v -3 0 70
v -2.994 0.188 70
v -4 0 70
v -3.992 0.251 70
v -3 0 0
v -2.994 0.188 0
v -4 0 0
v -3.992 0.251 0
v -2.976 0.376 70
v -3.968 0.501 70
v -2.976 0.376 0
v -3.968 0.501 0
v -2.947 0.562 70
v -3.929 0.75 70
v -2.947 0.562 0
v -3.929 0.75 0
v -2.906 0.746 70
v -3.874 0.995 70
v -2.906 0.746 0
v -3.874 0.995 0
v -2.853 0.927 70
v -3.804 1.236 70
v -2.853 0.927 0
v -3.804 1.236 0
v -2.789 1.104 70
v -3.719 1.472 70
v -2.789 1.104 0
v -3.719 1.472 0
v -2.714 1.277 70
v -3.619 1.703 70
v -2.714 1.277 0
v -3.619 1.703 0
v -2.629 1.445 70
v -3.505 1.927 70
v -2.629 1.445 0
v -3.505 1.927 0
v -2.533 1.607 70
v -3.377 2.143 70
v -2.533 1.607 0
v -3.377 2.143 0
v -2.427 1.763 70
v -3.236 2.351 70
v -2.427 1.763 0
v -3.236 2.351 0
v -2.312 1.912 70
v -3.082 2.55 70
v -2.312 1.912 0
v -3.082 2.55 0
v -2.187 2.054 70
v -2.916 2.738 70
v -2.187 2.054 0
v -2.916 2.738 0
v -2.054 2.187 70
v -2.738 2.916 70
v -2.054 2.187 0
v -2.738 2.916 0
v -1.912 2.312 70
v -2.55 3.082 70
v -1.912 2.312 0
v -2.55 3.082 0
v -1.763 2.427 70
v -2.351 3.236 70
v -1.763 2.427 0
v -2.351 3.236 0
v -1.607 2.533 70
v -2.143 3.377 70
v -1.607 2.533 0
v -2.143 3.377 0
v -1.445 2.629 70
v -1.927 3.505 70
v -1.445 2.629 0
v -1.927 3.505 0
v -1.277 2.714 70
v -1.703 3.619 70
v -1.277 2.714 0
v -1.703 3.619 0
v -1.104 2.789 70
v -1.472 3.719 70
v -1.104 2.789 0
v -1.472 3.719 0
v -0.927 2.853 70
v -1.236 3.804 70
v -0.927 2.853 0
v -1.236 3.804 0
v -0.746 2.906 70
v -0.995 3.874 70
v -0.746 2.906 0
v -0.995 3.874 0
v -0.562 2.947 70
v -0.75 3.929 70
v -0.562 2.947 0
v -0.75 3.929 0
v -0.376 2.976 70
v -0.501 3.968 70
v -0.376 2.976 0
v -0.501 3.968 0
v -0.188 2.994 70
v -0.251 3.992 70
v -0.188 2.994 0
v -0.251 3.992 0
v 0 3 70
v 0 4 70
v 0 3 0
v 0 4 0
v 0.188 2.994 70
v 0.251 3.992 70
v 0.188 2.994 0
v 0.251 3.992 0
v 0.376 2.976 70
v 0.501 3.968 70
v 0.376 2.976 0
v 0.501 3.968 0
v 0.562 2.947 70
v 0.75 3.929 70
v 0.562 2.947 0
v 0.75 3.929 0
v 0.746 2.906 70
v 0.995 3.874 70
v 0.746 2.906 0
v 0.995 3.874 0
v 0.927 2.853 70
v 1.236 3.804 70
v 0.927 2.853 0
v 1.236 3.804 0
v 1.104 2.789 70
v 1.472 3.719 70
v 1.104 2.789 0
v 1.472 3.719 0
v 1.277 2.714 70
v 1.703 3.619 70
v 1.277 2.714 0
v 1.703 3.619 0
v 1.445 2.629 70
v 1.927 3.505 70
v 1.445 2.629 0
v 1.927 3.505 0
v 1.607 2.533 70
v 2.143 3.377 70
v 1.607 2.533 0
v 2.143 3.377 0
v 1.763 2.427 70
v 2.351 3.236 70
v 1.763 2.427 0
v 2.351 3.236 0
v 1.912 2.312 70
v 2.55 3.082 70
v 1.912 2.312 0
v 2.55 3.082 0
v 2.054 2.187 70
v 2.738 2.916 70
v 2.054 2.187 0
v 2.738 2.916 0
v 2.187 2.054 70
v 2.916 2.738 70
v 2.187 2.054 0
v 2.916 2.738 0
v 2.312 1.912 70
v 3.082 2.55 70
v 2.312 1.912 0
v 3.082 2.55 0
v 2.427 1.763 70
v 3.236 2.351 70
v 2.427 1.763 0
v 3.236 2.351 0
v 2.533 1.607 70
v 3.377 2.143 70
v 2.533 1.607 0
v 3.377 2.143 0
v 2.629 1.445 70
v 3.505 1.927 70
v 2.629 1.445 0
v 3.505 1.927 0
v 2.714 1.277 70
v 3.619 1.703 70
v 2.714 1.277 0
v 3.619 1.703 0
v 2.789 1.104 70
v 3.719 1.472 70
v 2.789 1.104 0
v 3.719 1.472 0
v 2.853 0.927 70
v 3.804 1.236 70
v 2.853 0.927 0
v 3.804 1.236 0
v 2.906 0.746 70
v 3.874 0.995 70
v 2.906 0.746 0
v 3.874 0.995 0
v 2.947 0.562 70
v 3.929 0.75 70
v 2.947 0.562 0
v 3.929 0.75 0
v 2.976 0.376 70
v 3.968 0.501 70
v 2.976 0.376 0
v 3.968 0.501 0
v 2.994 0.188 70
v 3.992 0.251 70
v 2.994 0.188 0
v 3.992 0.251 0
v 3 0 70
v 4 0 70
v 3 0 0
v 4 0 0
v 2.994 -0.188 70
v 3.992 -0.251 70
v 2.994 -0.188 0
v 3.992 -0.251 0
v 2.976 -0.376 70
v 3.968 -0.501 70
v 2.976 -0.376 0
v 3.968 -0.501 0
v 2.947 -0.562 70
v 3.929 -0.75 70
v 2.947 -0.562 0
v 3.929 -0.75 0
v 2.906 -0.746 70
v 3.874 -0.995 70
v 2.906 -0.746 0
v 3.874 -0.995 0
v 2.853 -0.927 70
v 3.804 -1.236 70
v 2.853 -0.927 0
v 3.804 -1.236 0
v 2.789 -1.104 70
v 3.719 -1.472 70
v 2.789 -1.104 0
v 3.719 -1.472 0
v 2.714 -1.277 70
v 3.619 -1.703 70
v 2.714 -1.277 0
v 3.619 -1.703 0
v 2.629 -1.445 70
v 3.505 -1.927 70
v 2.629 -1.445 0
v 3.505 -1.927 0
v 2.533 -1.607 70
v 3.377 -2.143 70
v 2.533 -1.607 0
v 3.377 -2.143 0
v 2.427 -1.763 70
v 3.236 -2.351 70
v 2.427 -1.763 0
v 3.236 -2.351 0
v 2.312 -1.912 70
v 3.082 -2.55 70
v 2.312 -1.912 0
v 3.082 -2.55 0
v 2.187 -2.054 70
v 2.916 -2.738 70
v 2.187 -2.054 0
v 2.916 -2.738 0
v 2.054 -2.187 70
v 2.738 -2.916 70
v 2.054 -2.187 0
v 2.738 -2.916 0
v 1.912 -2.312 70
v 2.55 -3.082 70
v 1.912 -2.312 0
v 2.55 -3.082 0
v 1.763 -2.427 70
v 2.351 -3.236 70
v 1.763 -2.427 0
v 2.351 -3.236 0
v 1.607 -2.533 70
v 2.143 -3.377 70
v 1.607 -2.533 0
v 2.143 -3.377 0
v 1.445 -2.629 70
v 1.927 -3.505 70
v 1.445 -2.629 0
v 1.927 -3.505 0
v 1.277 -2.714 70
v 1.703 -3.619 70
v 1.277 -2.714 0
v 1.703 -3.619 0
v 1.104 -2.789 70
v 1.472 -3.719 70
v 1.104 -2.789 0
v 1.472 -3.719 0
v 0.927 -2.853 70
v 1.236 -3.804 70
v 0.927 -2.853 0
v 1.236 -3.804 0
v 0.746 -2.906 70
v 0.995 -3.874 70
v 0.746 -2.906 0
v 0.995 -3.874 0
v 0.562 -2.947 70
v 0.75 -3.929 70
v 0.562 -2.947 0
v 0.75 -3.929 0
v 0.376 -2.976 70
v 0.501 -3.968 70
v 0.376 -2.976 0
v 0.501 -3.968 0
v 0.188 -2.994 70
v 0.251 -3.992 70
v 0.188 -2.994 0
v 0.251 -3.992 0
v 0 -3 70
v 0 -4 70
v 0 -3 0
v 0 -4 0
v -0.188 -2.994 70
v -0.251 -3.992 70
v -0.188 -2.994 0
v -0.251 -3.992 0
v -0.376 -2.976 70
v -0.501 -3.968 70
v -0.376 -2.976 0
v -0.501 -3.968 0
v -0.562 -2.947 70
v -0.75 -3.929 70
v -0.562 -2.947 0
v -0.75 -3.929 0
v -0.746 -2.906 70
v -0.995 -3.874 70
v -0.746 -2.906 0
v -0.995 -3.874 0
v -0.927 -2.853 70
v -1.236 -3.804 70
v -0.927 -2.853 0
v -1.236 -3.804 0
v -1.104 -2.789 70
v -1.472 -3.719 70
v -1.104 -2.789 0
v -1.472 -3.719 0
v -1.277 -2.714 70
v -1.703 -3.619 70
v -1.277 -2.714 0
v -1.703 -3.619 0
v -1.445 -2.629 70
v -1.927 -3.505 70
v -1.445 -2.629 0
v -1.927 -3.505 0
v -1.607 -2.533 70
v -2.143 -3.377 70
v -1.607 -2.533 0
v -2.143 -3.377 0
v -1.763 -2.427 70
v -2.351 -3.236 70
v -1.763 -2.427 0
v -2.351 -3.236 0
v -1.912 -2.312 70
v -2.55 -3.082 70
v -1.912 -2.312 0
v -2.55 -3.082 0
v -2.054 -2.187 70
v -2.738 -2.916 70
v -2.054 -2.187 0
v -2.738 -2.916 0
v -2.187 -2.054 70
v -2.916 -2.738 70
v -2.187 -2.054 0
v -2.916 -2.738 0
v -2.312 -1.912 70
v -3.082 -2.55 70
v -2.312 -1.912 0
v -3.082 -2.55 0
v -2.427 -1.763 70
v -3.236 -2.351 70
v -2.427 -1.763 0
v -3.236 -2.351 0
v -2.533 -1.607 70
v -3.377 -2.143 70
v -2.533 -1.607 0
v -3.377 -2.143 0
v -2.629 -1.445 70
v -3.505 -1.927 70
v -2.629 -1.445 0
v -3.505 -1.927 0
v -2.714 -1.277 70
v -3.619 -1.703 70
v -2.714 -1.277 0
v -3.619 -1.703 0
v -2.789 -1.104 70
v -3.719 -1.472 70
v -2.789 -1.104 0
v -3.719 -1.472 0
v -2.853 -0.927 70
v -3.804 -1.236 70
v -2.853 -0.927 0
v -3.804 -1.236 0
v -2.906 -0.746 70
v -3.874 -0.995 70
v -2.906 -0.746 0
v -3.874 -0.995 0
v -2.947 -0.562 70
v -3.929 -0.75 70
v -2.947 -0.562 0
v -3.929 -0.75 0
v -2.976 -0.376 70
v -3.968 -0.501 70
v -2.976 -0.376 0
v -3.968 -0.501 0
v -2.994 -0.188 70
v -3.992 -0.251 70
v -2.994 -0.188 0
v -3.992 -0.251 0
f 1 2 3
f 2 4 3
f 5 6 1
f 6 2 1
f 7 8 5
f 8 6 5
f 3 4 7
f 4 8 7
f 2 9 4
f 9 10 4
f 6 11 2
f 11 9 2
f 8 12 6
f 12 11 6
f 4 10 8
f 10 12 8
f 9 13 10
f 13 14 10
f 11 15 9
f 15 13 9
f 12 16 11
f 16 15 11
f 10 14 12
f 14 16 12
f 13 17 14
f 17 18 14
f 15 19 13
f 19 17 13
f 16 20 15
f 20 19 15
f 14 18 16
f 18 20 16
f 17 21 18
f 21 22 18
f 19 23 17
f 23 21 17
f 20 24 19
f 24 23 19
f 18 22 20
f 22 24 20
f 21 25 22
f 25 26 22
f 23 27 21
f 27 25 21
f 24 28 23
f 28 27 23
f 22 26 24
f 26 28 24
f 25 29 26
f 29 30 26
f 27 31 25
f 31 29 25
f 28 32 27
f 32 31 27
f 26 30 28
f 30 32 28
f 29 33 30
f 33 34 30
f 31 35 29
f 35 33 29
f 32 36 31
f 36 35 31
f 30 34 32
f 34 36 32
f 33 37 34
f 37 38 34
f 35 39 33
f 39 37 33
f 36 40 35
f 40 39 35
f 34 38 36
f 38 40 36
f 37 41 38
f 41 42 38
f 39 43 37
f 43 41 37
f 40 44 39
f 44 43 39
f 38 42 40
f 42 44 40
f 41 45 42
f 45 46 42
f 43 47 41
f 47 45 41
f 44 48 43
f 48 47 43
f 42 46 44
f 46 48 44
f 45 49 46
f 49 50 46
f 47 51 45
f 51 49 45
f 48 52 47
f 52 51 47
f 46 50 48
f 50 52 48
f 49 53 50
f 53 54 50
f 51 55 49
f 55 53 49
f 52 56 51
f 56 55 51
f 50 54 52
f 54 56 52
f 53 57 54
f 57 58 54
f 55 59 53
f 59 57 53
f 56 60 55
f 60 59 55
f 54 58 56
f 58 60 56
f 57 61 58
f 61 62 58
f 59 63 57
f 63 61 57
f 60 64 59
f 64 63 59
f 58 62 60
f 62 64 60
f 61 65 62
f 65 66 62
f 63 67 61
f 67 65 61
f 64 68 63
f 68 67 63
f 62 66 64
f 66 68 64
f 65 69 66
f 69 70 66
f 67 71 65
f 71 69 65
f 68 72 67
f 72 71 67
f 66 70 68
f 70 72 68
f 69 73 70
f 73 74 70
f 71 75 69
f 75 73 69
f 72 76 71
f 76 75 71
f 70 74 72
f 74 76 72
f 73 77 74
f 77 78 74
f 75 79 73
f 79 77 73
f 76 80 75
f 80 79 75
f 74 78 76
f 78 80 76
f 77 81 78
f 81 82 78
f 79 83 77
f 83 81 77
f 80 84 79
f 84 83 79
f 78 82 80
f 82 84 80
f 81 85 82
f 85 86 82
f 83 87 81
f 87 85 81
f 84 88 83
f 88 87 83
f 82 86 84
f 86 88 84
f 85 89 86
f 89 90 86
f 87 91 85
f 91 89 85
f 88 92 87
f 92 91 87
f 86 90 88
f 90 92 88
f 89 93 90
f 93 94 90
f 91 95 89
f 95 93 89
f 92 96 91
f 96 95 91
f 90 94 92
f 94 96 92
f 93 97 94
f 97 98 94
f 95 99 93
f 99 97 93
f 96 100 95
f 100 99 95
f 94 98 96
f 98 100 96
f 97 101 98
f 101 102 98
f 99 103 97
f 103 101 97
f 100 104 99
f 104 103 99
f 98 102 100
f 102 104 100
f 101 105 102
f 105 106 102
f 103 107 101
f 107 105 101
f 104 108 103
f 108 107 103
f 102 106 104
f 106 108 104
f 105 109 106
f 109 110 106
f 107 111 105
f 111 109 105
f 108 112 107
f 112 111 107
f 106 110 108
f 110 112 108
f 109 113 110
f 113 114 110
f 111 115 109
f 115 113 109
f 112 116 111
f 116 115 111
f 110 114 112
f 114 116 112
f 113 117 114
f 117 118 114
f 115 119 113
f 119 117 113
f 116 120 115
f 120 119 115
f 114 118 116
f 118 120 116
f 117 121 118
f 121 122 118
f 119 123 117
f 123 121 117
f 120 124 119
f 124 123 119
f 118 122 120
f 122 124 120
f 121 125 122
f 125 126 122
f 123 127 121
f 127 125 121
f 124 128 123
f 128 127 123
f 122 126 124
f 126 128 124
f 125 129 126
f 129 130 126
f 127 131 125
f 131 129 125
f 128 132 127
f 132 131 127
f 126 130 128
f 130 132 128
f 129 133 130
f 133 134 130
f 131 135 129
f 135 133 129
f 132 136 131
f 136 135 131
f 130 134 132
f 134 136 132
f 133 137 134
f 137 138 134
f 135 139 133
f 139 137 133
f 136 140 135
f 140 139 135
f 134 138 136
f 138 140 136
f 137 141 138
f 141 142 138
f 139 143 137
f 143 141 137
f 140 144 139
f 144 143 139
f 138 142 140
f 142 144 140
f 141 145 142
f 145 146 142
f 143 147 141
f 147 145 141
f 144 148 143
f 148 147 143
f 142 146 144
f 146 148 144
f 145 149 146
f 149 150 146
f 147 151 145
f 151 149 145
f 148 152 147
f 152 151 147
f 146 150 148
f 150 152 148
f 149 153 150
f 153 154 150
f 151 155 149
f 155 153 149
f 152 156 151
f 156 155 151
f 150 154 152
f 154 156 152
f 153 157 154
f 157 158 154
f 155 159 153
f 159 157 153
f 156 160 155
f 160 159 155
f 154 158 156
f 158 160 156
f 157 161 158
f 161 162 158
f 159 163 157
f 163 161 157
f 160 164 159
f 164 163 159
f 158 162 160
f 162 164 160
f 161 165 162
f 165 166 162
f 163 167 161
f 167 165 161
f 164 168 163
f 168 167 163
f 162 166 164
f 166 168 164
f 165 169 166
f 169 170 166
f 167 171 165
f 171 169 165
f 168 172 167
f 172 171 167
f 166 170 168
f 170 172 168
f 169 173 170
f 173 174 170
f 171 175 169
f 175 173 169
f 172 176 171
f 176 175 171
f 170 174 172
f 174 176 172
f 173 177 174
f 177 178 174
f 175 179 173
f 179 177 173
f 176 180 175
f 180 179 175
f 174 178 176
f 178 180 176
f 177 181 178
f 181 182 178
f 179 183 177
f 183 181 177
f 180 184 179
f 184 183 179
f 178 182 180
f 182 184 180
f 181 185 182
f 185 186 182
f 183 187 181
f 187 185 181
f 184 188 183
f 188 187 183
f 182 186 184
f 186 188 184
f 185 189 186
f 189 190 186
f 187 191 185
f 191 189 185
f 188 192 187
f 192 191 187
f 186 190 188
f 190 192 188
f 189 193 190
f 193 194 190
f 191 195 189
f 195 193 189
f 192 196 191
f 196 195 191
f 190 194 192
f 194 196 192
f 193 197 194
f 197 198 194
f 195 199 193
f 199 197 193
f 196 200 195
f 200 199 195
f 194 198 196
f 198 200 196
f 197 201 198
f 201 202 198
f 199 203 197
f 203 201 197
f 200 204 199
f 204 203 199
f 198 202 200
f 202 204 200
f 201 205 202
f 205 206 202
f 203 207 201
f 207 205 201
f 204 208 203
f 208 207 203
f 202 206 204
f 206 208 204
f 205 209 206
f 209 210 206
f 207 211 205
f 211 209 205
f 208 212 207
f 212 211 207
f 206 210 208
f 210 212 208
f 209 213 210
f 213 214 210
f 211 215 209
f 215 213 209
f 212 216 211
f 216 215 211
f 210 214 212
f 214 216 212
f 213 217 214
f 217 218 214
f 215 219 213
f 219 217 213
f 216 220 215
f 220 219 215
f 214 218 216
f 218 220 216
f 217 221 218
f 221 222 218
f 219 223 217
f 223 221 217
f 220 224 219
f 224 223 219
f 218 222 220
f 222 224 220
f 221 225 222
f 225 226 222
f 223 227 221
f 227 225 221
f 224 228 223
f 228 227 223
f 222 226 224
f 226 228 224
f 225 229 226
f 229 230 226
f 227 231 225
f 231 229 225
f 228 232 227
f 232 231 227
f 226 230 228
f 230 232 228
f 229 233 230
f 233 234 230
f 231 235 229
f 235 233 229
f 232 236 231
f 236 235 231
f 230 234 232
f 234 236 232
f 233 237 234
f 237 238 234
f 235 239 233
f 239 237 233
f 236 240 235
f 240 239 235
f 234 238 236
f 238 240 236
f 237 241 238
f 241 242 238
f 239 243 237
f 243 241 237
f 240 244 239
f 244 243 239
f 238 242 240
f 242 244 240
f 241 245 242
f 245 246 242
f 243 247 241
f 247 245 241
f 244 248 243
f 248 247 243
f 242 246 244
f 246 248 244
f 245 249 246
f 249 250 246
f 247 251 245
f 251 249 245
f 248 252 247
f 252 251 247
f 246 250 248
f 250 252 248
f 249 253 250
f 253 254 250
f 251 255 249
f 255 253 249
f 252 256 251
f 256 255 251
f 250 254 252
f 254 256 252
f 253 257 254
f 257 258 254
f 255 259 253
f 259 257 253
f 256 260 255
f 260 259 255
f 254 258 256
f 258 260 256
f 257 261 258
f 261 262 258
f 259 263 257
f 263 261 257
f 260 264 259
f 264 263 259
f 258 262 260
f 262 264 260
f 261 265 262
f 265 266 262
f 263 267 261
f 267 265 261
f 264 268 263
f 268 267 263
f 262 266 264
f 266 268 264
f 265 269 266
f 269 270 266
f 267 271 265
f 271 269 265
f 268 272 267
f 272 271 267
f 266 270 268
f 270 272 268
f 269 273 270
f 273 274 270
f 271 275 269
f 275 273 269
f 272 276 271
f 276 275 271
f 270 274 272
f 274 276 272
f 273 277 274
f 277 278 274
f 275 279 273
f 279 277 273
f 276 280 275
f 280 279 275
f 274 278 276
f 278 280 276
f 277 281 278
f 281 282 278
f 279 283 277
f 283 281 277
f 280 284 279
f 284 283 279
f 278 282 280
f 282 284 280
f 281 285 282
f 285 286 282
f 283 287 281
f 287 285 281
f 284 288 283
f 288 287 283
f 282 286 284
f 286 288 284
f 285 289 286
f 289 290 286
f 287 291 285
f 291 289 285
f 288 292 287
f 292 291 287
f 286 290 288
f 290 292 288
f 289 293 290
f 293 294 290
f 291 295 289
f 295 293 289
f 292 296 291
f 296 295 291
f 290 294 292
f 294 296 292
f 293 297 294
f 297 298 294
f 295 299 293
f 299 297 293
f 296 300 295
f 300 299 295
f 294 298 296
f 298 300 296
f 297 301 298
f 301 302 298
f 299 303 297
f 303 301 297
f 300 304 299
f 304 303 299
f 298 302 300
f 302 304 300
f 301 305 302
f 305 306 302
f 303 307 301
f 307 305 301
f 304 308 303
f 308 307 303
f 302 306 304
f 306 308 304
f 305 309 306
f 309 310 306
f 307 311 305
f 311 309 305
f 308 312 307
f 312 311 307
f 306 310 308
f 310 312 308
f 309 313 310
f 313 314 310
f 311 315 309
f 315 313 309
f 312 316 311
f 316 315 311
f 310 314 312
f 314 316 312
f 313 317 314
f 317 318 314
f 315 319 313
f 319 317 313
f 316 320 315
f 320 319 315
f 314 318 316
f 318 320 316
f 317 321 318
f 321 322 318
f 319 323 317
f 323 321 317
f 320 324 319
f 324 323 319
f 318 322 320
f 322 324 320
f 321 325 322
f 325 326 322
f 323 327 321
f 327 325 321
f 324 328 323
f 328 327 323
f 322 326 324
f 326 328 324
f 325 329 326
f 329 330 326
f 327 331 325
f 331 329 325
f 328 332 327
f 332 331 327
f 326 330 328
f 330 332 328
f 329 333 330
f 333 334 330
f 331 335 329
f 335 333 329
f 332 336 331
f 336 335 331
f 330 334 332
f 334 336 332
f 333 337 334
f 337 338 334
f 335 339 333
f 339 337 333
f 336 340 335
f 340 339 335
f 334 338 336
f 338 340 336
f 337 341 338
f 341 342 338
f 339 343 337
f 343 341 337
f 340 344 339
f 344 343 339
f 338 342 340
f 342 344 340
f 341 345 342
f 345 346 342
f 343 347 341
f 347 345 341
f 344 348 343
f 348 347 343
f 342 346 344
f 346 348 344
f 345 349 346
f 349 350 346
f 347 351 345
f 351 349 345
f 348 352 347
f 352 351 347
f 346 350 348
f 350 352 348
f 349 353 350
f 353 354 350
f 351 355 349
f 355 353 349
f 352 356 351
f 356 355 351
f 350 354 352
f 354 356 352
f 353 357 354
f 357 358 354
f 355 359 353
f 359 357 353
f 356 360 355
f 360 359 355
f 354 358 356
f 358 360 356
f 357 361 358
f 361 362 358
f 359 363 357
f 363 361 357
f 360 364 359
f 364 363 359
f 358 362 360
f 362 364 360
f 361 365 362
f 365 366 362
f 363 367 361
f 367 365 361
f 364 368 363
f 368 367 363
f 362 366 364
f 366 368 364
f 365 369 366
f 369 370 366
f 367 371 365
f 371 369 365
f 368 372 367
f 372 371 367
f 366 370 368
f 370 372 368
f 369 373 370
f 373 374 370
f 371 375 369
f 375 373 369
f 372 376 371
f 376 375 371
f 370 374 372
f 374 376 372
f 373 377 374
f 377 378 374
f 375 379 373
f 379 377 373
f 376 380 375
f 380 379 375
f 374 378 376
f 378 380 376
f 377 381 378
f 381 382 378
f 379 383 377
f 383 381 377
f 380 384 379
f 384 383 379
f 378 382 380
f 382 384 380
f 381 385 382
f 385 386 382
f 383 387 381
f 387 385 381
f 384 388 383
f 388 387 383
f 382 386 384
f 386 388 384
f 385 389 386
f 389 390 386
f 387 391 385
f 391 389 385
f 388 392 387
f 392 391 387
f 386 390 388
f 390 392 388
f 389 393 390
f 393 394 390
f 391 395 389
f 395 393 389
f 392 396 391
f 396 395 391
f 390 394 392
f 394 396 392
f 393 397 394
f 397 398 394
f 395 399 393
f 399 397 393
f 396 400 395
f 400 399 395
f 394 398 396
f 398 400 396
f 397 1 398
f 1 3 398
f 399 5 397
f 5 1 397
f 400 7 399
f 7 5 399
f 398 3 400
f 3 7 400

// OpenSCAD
$fn=100;
rotate_extrude () {
    polygon (points = [[3,0], [4,0], [4,70],[3,70]]);
}
